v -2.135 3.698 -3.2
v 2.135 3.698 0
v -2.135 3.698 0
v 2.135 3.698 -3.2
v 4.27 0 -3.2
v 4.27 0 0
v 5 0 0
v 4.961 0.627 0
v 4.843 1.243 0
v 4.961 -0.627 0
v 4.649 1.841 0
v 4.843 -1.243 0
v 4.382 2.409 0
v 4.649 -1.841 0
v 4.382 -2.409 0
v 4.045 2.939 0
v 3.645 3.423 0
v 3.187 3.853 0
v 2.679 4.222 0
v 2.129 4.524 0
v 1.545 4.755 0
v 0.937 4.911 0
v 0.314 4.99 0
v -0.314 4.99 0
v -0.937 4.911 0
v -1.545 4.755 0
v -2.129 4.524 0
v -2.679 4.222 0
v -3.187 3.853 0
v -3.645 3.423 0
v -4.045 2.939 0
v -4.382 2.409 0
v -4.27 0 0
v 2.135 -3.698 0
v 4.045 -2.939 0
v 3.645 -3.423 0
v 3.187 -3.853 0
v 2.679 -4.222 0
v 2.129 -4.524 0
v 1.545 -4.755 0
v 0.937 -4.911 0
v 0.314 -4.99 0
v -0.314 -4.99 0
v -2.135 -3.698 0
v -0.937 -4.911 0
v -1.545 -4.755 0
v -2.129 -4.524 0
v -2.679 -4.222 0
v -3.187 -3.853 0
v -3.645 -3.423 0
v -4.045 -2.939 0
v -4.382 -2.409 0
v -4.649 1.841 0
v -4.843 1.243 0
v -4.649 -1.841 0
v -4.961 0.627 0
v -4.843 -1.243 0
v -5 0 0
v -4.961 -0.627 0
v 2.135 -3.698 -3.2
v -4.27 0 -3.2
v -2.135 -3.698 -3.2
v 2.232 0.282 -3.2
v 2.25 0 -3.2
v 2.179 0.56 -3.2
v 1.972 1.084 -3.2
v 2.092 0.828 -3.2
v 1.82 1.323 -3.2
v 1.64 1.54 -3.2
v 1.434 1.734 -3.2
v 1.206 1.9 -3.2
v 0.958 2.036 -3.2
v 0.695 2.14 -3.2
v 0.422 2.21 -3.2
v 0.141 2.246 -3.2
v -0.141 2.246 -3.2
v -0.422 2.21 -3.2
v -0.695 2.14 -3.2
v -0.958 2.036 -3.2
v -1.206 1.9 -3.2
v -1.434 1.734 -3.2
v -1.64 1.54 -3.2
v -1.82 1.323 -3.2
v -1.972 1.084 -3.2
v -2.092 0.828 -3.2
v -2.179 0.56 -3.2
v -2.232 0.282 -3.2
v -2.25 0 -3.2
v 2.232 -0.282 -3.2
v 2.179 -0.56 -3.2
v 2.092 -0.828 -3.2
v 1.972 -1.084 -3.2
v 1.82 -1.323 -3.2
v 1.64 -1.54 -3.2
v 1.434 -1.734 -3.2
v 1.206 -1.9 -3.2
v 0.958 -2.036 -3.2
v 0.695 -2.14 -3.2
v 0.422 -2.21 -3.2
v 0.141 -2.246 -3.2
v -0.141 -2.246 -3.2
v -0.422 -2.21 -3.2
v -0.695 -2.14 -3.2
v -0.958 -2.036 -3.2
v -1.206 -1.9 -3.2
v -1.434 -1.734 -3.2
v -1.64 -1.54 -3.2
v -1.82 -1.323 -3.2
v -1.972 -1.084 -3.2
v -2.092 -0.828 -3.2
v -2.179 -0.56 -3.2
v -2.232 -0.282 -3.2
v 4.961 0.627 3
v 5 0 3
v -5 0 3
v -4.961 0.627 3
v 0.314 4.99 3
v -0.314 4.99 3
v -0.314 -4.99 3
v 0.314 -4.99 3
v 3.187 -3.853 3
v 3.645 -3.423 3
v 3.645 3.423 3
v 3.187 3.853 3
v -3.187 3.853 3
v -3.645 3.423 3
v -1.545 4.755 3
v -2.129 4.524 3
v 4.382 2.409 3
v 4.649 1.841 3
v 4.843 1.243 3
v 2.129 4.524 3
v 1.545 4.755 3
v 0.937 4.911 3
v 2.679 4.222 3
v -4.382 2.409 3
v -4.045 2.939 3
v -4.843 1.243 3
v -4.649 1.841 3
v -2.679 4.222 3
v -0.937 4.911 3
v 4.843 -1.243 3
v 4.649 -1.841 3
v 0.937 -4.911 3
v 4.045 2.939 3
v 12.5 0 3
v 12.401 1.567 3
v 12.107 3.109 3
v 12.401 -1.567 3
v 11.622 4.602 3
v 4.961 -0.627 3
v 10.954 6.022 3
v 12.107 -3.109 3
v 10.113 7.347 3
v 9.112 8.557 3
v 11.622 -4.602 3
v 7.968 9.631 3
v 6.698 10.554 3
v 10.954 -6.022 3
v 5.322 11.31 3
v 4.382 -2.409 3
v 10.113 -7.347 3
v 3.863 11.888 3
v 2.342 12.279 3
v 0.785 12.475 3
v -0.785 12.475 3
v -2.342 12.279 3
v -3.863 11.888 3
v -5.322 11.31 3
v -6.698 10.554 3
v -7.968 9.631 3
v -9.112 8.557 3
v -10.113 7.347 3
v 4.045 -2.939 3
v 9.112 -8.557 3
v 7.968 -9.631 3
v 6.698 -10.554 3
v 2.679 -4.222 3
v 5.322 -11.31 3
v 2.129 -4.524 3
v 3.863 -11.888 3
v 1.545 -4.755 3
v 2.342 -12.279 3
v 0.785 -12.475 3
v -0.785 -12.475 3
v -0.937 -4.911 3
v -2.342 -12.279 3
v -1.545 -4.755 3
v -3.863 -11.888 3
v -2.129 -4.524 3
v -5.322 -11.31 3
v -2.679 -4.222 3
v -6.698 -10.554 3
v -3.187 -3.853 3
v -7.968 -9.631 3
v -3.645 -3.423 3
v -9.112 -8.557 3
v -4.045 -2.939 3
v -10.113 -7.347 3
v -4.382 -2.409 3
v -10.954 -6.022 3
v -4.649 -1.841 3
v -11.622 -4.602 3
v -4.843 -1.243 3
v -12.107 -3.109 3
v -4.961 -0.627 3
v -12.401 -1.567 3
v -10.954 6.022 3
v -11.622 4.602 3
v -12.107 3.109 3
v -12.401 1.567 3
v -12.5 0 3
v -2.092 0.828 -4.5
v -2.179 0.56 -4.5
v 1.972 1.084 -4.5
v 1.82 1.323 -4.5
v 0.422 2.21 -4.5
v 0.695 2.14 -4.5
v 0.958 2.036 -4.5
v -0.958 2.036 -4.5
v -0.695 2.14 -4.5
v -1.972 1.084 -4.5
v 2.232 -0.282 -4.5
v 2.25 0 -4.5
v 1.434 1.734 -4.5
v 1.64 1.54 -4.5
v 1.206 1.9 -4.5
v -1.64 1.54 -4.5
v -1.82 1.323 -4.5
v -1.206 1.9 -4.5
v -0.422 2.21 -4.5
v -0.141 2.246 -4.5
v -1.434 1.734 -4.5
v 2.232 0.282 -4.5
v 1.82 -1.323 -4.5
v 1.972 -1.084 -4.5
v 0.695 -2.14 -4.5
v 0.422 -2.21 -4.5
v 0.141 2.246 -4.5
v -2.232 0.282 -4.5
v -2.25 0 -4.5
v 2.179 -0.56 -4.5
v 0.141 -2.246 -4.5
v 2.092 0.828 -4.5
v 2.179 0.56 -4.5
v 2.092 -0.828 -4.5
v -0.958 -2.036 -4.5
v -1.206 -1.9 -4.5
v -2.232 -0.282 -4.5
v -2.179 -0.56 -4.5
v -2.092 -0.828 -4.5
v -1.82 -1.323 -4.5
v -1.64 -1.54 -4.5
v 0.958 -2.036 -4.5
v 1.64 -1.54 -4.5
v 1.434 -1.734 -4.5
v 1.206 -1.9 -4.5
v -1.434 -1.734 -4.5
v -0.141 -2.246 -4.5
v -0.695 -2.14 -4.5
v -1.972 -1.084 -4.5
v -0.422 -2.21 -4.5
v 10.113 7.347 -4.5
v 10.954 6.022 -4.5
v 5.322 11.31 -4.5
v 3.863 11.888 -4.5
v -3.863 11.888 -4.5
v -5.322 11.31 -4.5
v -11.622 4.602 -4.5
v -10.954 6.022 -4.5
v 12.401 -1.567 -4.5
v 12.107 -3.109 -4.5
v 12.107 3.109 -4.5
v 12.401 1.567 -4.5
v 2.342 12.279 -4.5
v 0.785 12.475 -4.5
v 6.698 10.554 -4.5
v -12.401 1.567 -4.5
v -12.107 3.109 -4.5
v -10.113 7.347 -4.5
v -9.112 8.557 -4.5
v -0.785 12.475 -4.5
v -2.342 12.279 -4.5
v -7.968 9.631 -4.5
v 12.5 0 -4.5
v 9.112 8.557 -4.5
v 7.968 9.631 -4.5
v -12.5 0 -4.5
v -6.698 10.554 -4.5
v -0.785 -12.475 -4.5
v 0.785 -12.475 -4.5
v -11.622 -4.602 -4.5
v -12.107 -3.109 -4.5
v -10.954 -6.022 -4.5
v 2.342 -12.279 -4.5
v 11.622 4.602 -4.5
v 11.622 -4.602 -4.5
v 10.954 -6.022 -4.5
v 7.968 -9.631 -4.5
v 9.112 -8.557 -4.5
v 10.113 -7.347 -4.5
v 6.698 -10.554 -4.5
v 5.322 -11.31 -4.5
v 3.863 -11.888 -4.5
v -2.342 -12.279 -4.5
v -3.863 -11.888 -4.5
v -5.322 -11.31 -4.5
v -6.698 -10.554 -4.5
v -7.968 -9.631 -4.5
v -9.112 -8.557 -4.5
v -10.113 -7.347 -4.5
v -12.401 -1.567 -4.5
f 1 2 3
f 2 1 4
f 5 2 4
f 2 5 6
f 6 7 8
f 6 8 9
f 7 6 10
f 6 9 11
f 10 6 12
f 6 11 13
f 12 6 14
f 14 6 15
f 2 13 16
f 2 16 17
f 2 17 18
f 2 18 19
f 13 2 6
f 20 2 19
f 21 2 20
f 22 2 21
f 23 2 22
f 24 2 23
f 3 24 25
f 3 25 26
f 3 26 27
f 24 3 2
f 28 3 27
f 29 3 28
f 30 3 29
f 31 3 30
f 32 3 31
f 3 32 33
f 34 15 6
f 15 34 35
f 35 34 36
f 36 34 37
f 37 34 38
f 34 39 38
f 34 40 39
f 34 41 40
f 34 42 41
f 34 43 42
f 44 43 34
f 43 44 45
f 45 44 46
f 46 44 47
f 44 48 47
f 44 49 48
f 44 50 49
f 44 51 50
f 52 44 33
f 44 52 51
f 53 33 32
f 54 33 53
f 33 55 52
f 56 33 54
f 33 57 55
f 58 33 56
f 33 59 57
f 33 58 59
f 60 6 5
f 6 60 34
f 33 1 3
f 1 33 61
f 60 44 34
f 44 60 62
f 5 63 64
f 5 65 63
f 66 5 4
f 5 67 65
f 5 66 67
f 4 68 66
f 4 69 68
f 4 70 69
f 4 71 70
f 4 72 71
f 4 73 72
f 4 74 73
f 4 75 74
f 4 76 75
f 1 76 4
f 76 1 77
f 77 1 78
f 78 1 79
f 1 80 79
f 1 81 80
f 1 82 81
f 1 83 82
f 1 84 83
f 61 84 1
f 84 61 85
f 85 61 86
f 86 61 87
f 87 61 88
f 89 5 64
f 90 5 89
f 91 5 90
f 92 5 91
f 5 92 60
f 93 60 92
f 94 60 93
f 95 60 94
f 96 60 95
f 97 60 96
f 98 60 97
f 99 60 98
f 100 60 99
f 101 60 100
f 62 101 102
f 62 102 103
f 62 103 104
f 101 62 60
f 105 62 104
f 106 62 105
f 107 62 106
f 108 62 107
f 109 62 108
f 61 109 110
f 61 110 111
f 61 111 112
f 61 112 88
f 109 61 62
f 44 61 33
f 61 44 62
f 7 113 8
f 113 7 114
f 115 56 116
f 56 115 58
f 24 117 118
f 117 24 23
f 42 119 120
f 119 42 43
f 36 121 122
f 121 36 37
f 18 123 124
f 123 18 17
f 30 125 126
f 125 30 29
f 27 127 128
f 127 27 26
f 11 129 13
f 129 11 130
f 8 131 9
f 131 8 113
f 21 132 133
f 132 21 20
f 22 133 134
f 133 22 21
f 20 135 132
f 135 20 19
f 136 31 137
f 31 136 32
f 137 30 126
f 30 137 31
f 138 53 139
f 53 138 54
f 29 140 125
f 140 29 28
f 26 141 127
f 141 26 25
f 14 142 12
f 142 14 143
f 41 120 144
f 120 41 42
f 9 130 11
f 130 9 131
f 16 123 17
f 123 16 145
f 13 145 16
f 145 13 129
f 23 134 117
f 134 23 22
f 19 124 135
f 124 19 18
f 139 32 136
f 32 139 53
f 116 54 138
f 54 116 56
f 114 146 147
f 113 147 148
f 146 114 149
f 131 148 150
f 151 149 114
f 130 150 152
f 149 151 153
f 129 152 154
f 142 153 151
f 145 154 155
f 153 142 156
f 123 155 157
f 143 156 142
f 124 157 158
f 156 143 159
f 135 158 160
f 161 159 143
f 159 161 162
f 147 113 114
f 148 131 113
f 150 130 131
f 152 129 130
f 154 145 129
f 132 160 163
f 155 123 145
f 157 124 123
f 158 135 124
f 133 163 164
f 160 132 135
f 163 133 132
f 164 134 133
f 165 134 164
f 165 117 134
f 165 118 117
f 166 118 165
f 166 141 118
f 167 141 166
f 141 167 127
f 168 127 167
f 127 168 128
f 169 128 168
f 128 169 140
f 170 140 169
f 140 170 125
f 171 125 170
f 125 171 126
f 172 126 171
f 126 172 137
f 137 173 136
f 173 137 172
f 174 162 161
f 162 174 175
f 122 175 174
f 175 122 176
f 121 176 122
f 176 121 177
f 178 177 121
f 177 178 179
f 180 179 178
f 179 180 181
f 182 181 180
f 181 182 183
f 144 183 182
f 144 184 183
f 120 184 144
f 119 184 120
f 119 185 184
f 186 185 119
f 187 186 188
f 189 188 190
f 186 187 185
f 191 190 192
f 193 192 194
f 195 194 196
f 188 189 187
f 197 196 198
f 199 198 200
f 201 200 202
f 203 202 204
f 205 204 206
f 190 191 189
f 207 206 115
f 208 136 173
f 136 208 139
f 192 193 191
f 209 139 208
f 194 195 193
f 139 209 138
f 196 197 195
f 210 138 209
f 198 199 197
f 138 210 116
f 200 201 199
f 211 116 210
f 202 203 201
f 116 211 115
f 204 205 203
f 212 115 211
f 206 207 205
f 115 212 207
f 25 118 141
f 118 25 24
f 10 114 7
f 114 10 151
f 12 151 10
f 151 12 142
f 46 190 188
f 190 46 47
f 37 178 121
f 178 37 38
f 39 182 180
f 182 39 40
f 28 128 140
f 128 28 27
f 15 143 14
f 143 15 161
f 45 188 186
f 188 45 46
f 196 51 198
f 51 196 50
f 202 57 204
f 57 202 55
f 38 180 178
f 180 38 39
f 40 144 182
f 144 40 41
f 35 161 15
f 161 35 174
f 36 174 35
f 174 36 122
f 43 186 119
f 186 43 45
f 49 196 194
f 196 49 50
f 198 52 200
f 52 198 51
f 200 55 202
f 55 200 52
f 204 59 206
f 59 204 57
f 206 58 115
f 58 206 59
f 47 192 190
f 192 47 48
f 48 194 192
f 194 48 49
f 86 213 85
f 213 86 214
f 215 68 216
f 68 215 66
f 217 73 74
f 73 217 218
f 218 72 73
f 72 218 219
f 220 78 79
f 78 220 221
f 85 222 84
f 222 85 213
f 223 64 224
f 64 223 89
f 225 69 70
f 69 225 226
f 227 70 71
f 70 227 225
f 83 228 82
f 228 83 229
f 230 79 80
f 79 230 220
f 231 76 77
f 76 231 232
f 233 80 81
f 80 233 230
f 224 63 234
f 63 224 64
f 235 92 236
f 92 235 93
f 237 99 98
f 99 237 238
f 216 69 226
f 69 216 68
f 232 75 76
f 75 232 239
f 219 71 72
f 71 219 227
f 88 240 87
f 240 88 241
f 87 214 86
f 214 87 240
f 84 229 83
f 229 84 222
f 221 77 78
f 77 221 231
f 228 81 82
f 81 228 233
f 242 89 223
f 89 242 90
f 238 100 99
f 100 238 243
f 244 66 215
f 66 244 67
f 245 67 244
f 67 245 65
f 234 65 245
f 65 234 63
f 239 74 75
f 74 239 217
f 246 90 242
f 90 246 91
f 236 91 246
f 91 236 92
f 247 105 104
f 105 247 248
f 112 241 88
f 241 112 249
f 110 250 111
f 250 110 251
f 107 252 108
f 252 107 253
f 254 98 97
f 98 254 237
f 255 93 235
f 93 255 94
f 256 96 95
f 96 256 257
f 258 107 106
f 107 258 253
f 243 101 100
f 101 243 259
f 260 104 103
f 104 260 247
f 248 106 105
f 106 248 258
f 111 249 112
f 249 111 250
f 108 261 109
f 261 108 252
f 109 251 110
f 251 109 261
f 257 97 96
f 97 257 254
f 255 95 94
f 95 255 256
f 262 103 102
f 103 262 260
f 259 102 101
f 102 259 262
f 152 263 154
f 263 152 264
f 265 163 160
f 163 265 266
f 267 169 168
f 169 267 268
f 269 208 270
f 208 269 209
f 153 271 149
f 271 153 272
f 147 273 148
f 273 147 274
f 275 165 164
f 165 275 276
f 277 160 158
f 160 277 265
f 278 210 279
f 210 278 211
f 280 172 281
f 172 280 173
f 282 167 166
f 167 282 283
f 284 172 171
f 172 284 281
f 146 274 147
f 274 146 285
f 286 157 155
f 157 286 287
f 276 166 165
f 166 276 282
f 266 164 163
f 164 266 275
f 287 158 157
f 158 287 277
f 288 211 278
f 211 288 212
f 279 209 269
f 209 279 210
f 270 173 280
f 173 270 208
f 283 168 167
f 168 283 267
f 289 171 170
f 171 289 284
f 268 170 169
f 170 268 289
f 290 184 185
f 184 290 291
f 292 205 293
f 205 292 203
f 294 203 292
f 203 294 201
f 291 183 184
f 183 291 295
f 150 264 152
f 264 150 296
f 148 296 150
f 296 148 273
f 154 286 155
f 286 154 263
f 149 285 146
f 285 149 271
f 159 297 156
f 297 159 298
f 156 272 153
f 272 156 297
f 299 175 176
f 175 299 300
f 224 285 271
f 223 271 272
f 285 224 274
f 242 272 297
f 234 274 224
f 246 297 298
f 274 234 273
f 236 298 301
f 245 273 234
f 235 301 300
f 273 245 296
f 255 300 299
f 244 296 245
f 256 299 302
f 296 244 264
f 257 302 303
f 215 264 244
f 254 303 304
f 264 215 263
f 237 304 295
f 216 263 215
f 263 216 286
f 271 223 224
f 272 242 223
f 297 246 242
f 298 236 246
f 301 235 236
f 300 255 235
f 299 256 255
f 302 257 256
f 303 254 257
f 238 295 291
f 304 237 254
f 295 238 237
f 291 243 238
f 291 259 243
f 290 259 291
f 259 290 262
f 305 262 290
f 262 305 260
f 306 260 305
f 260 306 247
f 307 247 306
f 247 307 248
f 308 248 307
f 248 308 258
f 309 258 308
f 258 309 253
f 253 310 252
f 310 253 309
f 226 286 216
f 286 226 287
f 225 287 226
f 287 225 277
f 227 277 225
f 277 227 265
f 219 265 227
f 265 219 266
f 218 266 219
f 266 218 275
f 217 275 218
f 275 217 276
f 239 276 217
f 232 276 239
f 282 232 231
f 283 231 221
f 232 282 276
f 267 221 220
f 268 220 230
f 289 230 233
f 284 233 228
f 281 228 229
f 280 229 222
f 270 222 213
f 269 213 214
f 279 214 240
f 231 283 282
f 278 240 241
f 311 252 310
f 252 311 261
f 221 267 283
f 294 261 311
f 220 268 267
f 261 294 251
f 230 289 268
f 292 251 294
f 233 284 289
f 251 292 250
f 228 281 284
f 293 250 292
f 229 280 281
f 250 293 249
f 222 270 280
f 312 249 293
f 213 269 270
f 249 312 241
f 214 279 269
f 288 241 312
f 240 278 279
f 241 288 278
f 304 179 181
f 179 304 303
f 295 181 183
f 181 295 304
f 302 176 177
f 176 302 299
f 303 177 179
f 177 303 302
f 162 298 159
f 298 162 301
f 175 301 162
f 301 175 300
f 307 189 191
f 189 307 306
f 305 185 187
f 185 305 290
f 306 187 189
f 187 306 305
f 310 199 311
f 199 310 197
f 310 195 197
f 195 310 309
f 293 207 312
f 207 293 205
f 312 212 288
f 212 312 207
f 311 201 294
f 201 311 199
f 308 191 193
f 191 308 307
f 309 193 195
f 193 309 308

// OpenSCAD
$fn = 50;

difference() {
	union() {
		translate(v = [0, 0, -4.5]) {
			cylinder(h = 7.5, r = 12.5);
		}
	}
	union() {
		translate(v = [0, 0, 0]) {
			rotate(a = [0, 0, 0]) {
				difference() {
					union() {
						translate(v = [0, 0, -3.2]) {
							linear_extrude(height = 3.2) {
								polygon(points = [[4.2698, 0.0], [2.1349000000000005, 3.697755269078796], [-2.134899999999999, 3.6977552690787965], [-4.2698, 5.228996902999369e-16], [-2.134900000000002, -3.6977552690787956], [2.1348999999999974, -3.697755269078798]]);
							}
						}
					}
					union();
				}
			}
		}
		#cylinder(h = 3, r = 5.0);
		#translate(v = [0, 0, -100.0]) {
			cylinder(h = 200, r = 2.25);
		}
	}
}
